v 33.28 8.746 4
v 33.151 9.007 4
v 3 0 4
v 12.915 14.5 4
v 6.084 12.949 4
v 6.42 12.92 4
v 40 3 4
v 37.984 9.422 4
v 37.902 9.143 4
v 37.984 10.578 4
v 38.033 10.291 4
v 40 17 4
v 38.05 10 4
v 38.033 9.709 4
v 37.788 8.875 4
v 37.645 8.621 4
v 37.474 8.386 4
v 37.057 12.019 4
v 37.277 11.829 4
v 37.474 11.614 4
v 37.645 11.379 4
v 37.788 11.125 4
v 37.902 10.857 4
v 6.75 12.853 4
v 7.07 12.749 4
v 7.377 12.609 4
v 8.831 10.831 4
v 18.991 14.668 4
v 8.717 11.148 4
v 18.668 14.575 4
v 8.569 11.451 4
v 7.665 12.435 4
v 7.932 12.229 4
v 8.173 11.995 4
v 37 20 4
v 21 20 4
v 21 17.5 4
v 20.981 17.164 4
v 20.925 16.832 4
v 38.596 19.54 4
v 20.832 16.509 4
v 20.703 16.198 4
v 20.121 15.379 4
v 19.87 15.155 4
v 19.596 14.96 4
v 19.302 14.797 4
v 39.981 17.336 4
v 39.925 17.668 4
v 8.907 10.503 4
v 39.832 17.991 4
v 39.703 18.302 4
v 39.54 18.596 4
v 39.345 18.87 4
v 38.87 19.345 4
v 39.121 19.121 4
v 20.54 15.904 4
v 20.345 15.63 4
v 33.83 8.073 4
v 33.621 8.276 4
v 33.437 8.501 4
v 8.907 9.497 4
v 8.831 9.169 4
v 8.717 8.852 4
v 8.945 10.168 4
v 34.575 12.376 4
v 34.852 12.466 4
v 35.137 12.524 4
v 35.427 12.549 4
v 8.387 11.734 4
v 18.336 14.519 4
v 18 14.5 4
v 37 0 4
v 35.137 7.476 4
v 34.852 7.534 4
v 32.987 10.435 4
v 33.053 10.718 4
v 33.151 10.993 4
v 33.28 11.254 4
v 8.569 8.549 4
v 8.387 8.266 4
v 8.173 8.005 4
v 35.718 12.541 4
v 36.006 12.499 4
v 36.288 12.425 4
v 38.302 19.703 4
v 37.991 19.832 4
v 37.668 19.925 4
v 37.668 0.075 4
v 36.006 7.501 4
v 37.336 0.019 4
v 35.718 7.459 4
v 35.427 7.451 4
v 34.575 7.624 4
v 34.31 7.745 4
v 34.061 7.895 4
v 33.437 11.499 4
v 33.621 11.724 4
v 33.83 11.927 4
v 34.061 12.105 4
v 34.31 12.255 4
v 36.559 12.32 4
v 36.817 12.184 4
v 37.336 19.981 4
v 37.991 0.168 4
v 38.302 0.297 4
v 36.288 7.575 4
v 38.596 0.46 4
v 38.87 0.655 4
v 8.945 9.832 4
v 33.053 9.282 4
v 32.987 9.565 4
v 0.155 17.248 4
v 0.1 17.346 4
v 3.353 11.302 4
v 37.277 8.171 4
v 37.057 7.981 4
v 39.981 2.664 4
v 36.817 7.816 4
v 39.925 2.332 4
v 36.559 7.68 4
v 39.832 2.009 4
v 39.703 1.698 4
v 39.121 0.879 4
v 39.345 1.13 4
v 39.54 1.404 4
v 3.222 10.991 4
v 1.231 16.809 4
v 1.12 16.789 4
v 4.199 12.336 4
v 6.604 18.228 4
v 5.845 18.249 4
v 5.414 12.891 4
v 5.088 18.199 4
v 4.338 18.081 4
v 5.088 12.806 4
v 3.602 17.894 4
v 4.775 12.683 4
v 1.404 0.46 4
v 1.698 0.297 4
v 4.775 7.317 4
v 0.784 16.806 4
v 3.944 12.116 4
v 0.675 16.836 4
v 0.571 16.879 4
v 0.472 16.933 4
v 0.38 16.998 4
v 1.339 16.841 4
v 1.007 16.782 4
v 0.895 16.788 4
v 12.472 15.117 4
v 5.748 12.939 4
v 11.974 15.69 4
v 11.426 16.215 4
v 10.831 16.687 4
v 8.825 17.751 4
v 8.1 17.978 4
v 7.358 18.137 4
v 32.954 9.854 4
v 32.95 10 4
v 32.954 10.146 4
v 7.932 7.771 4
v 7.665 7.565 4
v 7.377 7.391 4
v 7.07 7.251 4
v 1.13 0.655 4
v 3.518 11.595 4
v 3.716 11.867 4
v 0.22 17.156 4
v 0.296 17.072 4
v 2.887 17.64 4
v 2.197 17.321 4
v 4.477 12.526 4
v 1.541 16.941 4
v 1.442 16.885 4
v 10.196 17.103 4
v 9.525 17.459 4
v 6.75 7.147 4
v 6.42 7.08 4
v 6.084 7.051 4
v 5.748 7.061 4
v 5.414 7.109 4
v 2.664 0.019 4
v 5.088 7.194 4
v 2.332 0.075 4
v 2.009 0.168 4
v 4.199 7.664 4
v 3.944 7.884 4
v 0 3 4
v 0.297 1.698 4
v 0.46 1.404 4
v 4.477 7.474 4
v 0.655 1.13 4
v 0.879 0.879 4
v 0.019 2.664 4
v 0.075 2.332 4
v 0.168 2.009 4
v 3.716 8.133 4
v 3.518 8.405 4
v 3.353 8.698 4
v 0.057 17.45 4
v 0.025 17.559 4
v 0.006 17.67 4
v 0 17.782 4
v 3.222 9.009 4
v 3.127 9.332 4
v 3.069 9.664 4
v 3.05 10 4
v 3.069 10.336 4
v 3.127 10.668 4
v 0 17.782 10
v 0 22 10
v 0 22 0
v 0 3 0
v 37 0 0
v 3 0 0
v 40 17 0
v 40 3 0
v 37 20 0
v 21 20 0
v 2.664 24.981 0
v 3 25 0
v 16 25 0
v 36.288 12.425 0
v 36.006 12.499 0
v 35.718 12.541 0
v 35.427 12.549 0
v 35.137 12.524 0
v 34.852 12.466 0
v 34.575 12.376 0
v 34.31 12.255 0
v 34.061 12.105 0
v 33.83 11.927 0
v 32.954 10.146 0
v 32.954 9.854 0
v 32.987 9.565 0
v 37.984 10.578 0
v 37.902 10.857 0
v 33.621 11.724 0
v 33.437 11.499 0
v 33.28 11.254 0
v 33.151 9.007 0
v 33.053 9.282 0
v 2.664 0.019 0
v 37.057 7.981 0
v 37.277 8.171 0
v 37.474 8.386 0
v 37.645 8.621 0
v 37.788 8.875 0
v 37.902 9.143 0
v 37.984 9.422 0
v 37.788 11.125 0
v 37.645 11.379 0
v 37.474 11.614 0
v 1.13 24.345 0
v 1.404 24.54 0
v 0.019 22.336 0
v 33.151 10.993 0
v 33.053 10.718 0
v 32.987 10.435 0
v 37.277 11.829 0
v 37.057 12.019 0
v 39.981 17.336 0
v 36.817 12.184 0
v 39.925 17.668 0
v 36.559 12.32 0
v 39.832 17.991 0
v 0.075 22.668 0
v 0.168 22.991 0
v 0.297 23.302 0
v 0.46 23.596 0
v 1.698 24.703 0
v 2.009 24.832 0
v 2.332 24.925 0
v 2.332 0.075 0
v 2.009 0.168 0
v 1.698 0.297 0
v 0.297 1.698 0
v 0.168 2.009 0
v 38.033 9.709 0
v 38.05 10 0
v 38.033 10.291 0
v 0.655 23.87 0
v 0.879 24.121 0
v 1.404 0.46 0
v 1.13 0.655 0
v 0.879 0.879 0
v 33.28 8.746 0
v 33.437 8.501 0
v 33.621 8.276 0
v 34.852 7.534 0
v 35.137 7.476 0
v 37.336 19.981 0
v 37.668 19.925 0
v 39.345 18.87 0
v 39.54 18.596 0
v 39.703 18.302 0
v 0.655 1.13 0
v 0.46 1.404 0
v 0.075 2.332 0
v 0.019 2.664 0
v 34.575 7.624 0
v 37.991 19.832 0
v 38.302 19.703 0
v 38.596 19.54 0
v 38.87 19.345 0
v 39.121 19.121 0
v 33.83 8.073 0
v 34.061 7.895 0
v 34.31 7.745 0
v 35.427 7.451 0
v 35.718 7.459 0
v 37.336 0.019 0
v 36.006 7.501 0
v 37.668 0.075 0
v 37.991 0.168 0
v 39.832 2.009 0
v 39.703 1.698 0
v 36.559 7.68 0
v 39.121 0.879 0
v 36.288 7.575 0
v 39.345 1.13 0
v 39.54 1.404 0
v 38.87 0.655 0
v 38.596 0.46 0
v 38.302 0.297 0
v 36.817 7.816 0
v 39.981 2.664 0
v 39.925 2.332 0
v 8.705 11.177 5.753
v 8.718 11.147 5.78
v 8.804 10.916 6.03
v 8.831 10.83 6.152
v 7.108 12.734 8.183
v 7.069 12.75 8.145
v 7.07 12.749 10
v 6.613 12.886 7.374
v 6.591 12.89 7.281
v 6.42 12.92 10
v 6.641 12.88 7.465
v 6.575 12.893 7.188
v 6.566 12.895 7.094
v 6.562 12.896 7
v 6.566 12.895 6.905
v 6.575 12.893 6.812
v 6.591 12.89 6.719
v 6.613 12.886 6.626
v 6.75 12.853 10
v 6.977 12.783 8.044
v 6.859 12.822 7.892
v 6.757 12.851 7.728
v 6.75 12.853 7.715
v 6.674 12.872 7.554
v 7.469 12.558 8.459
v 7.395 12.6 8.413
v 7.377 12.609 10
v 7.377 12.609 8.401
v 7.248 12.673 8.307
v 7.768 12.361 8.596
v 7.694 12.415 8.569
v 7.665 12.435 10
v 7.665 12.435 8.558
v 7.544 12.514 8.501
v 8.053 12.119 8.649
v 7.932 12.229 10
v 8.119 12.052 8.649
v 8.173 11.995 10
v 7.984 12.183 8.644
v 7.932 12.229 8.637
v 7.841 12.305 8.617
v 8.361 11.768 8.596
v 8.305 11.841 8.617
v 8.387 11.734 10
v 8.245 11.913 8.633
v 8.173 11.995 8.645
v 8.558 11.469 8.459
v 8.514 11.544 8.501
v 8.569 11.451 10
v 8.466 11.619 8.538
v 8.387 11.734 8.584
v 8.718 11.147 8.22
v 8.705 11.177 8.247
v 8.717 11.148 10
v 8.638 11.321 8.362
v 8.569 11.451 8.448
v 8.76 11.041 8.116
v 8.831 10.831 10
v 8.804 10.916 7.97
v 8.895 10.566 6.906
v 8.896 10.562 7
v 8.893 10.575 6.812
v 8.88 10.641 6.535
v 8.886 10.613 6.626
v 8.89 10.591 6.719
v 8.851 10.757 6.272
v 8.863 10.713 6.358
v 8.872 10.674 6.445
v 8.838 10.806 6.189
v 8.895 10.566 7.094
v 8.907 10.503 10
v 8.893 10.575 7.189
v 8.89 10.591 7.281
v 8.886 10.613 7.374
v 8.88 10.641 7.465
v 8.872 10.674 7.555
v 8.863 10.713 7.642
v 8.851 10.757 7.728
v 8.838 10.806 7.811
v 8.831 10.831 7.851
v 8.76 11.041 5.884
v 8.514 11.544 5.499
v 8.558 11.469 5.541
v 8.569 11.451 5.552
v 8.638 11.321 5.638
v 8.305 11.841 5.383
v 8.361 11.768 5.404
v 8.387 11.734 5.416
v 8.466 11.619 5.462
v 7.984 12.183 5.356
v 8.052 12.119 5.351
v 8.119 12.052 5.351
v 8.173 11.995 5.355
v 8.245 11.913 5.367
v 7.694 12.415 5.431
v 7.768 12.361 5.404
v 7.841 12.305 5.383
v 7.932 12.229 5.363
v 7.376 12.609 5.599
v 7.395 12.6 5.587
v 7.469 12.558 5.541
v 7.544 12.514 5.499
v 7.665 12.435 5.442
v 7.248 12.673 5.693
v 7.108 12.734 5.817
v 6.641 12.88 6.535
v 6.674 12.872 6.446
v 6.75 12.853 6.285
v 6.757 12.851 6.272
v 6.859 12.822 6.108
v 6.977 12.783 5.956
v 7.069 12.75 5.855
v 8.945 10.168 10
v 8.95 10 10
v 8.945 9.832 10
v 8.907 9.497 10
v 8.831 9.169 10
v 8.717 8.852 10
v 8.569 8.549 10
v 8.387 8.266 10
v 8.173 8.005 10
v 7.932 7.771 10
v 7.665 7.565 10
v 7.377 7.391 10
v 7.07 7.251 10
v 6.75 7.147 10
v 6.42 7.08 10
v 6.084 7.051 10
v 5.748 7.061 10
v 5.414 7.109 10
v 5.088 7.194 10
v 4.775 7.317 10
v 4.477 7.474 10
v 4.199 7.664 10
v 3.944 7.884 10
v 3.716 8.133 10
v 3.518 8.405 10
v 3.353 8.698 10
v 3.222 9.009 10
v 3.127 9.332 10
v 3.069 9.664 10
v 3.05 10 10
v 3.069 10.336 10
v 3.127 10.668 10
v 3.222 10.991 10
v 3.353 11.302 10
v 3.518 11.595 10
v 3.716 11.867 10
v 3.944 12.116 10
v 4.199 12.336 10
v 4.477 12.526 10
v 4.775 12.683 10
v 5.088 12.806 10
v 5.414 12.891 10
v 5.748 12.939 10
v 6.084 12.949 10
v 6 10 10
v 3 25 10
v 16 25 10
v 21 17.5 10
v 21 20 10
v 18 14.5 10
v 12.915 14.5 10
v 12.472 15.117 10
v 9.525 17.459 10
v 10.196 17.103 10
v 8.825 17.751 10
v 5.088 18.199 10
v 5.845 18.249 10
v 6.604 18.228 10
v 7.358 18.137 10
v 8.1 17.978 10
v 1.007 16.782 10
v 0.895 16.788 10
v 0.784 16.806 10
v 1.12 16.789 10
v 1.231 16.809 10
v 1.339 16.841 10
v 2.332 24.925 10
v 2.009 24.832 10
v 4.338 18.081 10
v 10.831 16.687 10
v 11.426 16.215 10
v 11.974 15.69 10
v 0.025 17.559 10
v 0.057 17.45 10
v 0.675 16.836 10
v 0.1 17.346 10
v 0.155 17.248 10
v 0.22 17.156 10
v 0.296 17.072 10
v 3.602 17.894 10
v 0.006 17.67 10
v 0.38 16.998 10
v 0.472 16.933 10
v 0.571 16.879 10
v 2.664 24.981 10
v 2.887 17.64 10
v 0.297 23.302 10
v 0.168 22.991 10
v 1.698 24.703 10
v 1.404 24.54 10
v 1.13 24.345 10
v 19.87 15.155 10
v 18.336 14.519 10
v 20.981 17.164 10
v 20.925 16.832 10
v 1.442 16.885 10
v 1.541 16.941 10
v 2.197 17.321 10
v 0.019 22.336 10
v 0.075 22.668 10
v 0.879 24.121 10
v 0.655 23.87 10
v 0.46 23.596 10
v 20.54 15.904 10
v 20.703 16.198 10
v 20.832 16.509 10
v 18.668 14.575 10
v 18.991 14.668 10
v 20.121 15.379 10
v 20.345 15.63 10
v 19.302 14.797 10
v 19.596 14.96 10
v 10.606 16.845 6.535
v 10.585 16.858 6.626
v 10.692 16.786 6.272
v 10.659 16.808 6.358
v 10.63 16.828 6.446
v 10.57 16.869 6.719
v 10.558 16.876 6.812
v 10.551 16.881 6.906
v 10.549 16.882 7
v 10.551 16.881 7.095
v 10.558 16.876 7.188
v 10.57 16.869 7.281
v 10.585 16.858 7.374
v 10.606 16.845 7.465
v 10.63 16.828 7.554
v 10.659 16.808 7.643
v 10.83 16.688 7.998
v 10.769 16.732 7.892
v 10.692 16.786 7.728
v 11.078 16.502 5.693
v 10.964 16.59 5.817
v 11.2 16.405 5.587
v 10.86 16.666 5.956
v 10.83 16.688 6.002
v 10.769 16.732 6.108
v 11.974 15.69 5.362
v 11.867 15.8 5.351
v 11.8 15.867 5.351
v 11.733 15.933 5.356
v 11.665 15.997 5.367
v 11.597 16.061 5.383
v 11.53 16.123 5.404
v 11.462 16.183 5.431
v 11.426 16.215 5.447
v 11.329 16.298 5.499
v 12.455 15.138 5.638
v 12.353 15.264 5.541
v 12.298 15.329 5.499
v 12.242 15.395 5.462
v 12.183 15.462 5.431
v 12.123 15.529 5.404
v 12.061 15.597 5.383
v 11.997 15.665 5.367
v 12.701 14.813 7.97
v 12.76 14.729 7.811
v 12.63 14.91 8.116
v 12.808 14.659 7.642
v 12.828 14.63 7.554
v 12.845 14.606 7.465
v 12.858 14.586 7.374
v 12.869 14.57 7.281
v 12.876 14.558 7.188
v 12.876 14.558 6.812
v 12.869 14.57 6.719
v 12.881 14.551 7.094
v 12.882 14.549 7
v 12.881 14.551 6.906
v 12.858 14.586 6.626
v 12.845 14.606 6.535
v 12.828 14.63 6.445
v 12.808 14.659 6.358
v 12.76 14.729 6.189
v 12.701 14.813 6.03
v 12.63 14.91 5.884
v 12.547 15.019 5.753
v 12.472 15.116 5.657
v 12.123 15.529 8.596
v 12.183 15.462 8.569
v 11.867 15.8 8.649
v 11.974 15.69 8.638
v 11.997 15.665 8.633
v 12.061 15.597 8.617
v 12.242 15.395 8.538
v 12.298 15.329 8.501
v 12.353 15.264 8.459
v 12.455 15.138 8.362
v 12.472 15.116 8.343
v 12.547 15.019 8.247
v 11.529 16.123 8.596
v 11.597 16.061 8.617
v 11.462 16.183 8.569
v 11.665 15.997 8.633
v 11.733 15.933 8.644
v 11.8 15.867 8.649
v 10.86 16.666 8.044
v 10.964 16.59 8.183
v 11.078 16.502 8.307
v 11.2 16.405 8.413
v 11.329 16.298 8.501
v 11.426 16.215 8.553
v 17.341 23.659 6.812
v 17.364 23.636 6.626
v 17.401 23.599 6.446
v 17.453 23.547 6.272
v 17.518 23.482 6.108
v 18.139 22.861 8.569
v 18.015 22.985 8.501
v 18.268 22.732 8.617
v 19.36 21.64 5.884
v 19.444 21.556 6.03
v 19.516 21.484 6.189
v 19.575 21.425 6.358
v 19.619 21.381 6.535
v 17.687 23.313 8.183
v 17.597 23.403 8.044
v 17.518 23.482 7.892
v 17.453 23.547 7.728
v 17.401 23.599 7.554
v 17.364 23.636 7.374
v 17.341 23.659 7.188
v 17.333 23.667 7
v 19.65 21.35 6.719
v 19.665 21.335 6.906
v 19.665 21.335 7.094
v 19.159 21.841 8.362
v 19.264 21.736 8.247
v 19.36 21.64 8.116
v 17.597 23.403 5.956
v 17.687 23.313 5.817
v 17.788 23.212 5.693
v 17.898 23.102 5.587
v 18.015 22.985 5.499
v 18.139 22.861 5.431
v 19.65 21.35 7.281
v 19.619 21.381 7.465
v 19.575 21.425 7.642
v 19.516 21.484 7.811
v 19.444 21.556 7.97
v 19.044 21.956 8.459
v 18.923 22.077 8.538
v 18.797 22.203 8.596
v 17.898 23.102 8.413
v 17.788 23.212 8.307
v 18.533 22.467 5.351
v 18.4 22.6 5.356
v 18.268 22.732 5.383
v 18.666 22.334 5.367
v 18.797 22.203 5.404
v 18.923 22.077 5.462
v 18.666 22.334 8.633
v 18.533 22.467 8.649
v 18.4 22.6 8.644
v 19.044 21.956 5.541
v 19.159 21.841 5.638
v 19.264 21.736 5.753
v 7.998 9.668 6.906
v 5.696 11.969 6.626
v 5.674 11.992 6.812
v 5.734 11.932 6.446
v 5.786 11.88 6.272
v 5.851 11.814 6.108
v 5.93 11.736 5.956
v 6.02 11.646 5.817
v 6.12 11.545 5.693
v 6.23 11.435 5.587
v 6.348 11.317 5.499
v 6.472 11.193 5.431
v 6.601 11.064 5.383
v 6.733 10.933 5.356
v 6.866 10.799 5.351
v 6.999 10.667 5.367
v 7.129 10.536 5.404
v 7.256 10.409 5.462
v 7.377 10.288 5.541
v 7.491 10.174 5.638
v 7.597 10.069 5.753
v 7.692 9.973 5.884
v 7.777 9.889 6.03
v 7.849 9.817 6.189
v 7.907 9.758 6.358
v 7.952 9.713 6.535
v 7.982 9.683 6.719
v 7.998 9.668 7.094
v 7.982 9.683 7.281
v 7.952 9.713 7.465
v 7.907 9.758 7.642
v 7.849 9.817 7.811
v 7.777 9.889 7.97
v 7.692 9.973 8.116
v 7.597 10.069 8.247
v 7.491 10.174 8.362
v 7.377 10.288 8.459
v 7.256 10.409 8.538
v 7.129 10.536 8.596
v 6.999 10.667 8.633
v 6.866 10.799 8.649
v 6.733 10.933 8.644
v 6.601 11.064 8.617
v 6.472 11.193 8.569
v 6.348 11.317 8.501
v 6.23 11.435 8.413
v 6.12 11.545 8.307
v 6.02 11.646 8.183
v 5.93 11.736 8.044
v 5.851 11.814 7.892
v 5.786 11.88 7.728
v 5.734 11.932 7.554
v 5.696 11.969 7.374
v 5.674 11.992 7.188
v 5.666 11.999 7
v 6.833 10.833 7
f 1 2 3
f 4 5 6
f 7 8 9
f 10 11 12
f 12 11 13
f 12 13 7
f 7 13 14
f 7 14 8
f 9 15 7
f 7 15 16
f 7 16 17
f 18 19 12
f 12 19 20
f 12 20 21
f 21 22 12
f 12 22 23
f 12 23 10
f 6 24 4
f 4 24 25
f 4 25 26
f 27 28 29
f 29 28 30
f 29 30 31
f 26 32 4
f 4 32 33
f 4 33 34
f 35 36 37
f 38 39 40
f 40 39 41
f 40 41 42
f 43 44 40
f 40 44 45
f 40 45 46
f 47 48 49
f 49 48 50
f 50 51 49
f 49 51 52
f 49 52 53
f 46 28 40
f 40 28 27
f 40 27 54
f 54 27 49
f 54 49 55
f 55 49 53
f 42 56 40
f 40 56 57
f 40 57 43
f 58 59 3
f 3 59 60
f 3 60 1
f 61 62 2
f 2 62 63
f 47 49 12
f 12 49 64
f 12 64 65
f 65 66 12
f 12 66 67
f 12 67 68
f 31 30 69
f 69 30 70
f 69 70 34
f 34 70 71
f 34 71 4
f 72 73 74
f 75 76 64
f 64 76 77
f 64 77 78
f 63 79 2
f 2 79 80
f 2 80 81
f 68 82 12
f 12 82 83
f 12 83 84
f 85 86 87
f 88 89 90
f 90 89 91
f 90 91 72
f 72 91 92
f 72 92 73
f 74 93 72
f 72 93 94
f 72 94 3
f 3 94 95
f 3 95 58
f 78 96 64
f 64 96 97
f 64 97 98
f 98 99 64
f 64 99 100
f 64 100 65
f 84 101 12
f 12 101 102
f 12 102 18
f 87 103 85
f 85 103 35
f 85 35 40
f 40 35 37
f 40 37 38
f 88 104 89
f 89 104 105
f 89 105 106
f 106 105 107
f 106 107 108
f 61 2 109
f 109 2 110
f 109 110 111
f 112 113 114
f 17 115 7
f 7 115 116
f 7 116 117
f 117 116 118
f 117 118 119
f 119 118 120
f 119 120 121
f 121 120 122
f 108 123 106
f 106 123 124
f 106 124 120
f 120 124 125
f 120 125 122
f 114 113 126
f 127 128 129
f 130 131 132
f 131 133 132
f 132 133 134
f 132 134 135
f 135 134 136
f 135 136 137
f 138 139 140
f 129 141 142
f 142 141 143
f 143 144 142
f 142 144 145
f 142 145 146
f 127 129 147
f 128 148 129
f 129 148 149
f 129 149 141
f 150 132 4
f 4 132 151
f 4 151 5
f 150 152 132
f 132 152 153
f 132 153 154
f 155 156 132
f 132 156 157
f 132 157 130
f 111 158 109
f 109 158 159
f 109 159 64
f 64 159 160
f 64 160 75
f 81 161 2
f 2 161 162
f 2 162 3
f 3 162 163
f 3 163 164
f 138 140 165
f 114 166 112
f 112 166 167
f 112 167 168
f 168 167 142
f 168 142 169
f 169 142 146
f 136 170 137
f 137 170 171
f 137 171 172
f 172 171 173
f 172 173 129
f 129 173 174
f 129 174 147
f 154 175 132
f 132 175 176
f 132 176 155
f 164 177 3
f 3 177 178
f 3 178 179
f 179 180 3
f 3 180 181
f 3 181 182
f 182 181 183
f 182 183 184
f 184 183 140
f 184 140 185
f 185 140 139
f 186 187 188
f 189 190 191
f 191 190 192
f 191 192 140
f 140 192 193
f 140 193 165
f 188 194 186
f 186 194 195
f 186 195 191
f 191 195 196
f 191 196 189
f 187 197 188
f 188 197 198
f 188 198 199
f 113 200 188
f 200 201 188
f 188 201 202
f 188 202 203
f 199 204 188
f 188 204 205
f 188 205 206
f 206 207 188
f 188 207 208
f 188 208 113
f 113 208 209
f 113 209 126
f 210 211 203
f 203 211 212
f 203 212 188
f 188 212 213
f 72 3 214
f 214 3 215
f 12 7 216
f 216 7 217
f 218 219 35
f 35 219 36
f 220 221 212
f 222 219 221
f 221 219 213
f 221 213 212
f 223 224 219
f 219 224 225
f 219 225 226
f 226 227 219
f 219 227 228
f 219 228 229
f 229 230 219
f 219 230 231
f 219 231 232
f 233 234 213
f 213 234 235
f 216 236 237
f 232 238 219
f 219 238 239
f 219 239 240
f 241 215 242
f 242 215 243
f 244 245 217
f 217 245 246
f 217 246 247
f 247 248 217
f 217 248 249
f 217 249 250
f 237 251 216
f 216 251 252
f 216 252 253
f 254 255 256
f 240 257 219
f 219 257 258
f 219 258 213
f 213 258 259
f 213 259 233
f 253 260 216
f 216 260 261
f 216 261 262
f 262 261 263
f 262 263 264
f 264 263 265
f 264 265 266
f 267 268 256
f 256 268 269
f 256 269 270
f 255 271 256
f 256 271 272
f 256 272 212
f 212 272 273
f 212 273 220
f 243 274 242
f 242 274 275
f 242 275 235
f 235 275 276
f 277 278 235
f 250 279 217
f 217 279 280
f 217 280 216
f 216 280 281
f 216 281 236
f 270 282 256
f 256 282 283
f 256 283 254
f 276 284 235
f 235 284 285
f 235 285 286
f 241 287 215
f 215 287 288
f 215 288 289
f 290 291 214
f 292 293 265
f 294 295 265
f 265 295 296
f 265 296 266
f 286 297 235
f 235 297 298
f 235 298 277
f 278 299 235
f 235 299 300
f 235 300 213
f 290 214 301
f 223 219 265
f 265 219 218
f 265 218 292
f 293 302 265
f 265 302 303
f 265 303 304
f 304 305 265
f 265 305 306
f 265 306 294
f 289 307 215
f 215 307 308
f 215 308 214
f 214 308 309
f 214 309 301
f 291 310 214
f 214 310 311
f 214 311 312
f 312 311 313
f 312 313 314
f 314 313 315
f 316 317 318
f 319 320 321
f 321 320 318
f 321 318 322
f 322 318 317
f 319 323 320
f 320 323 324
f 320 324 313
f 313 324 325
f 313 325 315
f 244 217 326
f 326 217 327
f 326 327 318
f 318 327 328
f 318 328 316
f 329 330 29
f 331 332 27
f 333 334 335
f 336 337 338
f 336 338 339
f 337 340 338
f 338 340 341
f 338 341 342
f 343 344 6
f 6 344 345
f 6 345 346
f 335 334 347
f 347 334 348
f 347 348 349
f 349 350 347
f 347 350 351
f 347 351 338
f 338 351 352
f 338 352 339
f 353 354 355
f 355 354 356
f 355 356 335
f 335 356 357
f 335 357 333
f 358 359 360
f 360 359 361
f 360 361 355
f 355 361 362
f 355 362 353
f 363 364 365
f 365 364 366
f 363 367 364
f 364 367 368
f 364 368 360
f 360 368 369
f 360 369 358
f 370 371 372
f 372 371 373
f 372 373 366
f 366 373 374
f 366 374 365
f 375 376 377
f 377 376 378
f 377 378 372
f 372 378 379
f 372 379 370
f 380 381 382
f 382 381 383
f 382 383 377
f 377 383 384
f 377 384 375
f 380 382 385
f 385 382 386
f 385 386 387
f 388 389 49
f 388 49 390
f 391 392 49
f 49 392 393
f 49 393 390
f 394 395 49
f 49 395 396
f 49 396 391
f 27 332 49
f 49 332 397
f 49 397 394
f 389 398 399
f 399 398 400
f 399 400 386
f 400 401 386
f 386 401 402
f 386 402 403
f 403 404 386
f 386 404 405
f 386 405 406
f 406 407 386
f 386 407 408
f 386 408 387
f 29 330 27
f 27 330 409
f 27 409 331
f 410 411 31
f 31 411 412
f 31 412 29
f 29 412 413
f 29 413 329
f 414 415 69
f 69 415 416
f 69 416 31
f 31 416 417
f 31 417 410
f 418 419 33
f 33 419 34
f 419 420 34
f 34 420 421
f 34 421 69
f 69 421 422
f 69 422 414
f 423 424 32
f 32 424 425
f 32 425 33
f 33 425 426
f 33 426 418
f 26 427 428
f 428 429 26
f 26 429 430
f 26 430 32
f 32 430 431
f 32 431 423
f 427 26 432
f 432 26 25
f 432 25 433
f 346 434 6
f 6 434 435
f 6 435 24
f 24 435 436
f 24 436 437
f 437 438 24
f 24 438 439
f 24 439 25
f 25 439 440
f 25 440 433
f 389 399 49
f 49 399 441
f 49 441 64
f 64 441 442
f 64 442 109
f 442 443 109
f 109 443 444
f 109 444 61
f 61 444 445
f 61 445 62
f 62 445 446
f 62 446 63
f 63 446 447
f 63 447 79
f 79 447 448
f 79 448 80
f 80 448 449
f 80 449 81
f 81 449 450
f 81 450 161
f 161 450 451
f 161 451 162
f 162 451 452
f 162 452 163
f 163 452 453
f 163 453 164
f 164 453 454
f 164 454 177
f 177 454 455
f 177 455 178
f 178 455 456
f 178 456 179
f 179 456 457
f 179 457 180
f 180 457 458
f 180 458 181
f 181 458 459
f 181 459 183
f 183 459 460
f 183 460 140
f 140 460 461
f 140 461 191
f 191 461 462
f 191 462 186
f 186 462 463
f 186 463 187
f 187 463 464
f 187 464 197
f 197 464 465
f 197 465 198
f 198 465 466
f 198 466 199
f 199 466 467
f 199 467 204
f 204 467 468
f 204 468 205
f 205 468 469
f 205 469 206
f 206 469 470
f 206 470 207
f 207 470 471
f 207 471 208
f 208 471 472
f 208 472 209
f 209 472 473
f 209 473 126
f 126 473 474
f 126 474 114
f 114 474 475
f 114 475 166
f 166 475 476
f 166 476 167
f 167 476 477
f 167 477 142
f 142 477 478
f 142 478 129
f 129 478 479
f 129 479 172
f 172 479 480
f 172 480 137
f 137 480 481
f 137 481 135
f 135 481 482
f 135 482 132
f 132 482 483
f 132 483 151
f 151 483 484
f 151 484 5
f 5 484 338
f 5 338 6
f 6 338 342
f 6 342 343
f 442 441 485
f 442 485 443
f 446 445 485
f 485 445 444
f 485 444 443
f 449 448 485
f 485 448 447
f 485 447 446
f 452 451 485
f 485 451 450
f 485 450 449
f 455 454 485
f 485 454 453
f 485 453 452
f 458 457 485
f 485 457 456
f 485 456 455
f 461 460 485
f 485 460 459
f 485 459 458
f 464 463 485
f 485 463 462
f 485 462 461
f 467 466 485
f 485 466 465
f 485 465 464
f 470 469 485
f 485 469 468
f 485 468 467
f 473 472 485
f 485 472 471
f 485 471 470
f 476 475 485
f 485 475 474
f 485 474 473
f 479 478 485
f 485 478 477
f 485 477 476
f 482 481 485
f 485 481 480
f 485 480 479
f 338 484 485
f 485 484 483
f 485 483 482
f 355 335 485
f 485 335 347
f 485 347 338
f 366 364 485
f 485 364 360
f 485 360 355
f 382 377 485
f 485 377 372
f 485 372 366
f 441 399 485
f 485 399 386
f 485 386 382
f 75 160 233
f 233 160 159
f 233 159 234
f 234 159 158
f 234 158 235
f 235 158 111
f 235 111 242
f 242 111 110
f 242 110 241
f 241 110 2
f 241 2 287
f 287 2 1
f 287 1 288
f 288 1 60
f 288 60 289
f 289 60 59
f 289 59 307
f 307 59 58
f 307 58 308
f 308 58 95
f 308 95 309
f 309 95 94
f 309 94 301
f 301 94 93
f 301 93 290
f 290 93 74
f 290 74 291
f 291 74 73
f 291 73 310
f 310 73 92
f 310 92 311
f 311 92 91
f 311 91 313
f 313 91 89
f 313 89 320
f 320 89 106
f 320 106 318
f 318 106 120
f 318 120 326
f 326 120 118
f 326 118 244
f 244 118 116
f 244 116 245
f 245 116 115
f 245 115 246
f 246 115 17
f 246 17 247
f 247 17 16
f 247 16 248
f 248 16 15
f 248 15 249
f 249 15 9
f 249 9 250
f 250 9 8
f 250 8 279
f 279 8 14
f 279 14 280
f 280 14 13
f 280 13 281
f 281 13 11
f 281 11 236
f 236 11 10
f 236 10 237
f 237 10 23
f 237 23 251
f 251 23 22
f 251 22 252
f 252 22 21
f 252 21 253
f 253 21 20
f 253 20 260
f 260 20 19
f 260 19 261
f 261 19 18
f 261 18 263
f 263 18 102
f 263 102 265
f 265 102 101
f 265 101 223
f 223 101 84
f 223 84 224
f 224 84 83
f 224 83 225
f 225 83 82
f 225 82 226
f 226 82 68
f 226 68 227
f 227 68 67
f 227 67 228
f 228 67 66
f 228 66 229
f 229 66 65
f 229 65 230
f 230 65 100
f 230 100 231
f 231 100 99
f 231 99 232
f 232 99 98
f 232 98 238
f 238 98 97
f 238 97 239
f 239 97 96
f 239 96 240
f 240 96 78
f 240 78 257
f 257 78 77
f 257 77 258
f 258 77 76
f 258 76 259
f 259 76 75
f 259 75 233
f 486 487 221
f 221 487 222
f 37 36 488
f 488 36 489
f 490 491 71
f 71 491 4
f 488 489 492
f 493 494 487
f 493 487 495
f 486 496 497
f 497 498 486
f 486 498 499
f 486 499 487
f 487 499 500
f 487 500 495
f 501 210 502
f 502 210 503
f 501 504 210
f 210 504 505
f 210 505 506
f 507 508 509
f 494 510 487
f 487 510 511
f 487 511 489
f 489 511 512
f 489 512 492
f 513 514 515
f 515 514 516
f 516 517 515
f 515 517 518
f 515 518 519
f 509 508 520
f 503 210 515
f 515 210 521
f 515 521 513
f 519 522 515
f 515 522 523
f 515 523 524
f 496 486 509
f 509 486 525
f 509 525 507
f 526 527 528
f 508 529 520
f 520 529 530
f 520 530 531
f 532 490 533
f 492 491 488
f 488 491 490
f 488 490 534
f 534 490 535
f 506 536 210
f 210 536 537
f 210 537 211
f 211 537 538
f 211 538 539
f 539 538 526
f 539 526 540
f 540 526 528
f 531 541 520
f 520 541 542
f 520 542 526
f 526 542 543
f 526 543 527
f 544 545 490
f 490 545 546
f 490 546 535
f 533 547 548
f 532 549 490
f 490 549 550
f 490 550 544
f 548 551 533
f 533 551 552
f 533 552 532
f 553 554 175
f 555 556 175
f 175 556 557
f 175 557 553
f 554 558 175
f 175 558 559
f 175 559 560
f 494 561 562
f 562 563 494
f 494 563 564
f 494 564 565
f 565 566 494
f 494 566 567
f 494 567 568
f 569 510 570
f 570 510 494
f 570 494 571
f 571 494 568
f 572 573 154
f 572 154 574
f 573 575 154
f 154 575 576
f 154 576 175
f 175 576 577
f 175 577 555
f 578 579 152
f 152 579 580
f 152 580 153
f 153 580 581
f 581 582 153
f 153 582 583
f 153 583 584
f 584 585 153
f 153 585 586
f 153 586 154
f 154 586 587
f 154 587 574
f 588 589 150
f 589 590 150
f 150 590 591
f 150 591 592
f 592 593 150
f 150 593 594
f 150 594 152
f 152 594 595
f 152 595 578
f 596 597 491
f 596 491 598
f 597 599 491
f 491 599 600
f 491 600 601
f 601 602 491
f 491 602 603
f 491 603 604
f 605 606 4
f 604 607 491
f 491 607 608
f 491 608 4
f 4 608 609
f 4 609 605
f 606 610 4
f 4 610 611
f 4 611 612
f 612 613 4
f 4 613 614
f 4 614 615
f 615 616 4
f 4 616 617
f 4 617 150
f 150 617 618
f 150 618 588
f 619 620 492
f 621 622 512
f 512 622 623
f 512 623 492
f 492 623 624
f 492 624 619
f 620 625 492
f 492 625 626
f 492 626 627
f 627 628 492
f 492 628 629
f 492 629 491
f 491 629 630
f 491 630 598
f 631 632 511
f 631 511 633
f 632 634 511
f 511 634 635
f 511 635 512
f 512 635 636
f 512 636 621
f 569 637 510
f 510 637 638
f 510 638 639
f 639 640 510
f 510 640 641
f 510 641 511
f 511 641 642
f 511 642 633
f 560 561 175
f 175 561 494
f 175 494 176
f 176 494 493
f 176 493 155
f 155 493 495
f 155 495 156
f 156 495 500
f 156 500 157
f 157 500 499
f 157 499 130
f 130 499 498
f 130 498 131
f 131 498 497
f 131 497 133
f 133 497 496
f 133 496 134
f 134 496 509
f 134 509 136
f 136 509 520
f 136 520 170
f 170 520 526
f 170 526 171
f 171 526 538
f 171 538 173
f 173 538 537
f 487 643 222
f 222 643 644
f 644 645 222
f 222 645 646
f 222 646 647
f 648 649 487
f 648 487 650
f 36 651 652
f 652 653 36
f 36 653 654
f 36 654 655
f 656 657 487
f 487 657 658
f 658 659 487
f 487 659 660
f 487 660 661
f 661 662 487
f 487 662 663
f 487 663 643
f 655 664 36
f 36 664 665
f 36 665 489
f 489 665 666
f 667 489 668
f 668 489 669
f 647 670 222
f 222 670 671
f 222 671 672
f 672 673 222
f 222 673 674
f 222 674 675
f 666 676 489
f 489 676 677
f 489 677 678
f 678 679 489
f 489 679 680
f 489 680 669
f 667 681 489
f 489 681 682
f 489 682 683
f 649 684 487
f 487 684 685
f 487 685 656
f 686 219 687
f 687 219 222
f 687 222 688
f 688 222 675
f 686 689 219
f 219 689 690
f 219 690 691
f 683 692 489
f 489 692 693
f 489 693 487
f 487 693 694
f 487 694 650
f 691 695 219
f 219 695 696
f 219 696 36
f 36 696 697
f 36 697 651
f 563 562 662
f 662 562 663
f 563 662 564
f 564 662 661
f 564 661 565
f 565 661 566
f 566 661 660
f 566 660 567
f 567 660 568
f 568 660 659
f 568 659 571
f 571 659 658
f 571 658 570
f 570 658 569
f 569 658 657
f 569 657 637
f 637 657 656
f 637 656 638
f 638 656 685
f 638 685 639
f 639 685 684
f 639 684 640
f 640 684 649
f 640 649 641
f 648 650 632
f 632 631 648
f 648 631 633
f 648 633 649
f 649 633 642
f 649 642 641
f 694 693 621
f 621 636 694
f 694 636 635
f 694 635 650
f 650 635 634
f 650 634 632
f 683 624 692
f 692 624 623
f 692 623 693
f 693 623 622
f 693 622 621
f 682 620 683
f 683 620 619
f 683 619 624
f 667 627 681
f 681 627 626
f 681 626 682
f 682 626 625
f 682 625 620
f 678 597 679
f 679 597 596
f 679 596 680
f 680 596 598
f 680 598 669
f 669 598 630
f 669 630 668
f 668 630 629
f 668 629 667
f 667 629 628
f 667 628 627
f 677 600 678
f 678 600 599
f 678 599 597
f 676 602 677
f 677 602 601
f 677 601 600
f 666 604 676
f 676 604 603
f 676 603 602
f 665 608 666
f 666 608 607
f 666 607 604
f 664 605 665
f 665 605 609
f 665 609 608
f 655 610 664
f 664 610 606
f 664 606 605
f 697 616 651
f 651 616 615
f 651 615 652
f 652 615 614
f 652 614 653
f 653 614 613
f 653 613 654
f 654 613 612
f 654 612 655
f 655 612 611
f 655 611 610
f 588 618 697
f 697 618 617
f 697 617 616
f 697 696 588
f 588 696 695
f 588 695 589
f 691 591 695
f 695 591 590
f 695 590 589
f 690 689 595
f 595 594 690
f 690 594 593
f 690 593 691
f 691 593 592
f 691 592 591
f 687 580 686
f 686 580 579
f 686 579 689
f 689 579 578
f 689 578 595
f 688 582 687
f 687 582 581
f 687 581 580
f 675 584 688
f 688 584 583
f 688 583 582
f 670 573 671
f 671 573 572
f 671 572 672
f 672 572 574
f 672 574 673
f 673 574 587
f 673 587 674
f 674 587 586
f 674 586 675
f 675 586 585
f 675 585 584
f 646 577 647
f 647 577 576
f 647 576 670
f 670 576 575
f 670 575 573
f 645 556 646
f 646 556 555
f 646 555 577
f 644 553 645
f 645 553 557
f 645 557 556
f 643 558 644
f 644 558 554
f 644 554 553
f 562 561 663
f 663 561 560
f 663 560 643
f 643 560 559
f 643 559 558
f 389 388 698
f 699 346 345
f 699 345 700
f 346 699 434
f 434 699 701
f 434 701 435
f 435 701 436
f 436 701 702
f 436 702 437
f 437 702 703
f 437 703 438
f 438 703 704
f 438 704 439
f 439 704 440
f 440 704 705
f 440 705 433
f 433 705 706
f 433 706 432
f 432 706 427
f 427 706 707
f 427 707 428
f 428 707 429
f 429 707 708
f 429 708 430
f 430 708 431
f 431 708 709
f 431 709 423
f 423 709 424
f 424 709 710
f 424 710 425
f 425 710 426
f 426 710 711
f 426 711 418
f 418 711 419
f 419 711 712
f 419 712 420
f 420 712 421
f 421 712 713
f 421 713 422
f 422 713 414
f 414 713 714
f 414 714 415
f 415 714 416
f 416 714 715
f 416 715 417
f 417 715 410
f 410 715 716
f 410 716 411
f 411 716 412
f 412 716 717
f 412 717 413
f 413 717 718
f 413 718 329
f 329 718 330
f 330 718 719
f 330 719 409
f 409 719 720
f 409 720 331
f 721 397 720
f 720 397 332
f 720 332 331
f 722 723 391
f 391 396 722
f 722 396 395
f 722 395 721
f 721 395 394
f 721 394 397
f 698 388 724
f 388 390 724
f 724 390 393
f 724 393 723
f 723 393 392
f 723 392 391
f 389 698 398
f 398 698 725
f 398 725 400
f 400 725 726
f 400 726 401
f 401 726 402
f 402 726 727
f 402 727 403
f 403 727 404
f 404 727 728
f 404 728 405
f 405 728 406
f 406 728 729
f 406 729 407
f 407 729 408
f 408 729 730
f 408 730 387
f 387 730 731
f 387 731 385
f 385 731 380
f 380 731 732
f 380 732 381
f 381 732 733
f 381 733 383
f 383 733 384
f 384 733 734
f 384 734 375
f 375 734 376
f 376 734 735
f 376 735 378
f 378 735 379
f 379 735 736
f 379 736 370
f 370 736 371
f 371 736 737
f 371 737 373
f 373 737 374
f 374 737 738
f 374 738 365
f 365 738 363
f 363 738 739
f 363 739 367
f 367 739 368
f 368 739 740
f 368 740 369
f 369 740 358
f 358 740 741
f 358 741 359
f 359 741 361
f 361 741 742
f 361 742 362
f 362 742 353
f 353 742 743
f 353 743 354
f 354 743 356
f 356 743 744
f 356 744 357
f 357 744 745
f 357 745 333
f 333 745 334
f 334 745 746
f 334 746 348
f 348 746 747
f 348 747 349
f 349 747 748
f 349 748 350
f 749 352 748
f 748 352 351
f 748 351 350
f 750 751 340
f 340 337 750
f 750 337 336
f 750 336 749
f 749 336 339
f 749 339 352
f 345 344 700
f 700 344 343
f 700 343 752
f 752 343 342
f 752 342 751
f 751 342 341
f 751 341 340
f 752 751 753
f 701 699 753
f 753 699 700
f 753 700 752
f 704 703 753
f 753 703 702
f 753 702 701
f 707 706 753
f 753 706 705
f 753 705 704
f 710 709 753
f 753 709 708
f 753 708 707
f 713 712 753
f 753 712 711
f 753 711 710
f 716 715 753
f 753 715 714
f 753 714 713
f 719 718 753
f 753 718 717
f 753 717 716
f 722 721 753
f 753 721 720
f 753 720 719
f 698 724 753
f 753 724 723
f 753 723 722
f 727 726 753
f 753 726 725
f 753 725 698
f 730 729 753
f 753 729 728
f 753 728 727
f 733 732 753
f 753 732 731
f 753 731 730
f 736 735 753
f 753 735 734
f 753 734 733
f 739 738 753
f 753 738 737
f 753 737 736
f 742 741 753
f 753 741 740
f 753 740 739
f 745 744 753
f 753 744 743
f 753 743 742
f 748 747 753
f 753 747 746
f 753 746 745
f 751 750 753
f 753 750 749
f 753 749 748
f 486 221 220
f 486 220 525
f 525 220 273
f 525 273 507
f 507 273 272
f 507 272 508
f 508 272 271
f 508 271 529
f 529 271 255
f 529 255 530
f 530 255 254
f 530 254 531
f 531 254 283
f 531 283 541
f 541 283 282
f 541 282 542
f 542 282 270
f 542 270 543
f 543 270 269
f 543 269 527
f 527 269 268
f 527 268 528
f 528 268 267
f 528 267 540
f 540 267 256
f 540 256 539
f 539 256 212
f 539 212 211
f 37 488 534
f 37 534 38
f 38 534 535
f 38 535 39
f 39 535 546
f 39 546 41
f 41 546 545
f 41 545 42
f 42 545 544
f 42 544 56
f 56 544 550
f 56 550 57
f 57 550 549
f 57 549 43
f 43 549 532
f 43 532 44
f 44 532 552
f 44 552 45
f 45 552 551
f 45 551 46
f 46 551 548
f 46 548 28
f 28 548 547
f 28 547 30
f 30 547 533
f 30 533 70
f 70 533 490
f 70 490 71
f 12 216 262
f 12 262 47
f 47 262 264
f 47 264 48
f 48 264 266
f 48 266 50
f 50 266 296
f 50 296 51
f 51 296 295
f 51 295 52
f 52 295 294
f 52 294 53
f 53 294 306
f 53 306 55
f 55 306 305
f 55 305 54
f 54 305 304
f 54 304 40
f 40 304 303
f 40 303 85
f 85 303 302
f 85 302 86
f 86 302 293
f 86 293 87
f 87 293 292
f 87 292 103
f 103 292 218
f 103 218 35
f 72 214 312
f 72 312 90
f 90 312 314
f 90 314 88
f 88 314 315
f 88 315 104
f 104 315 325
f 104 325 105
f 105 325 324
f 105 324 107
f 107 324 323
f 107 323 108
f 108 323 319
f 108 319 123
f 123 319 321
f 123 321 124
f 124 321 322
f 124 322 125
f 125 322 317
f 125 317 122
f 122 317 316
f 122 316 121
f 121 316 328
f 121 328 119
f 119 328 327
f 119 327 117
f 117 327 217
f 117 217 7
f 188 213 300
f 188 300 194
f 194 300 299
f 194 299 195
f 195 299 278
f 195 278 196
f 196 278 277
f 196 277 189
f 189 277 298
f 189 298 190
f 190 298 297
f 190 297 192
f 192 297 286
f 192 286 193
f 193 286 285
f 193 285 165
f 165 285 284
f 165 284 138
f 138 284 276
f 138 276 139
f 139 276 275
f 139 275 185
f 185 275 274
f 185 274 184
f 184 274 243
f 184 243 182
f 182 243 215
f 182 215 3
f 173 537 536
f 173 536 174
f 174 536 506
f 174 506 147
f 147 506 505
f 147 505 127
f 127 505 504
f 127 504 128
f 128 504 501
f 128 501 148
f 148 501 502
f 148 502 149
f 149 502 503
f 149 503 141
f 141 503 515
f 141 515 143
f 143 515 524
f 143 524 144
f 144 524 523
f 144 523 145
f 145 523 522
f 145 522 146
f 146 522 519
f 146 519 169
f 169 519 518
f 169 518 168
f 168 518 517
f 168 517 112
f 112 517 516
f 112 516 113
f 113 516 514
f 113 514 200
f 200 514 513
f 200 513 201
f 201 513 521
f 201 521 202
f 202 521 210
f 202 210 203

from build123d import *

# Parameters (mm, degrees)
ESQUISSE1_W                  = 40
ESQUISSE1_H                  = 20
BOSS_EXTRU_1_DEPTH           = 4
ESQUISSE2_R                  = 2.95
BOSS_EXTRU_2_DEPTH           = 6
ENL_V_MAT_EXTRU_1_DEPTH      = 46.122056691
ENL_V_MAT_EXTRU_1_DEPTH_BACK = 46.122056691
ESQUISSE3_R                  = 2.55
ESQUISSE4_W                  = 21
ESQUISSE4_H                  = 5
BOSS_EXTRU_4_DEPTH           = 4
ESQUISSE5_W                  = 21
ESQUISSE5_H                  = 10.5
BOSS_EXTRU_5_DEPTH           = 6
ENL_V_START                  = -6
ESQUISSE6_R                  = 8.25
ESQUISSE6_R_2                = 2.95
ENL_V_MAT_EXTRU_2_DEPTH      = 6
CHANFREIN1_SIZE              = 5
ESQUISSE7_R                  = 1.65
ENL_V_MAT_EXTRU_3_DEPTH      = 16.5
CONG_1_R                     = 3
CONG_2_R                     = 1


with BuildPart() as part:
    # Esquisse1 → Boss.-Extru.1 (new body)
    with BuildSketch(Plane.XY):
        with Locations((20, 10)):
            Rectangle(ESQUISSE1_W, ESQUISSE1_H)
    extrude(amount=BOSS_EXTRU_1_DEPTH)

    # Esquisse2 → Boss.-Extru.2 (add)
    with BuildSketch(Plane.XY.offset(4)):
        with Locations(Location((6, 10, 0), (0, 0, 180))):
            Circle(ESQUISSE2_R)
    extrude(amount=BOSS_EXTRU_2_DEPTH)

    # Esquisse3 → Enlèv. mat.-Extru.1 (cut, two sides: drawn at the far end of the back side and taken through both)
    with BuildSketch(Plane.XY.offset(4).offset(-ENL_V_MAT_EXTRU_1_DEPTH_BACK)):
        with Locations((35.5, 10)):
            Circle(ESQUISSE3_R)
    extrude(amount=ENL_V_MAT_EXTRU_1_DEPTH + ENL_V_MAT_EXTRU_1_DEPTH_BACK, mode=Mode.SUBTRACT)

    # Esquisse4 → Boss.-Extru.4 (add)
    with BuildSketch(Plane.XY.offset(4)):
        with Locations((10.5, 22.5)):
            Rectangle(ESQUISSE4_W, ESQUISSE4_H)
    extrude(amount=-BOSS_EXTRU_4_DEPTH)

    # Esquisse5 → Boss.-Extru.5 (add)
    with BuildSketch(Plane.XY.offset(4)):
        with Locations((10.5, 19.75)):
            Rectangle(ESQUISSE5_W, ESQUISSE5_H)
    extrude(amount=BOSS_EXTRU_5_DEPTH)

    # Esquisse6 → Enlèv. mat.-Extru.2 (cut)
    with BuildSketch(Plane.XY.offset(10).offset(ENL_V_START)):
        with Locations((6, 10)):
            Circle(ESQUISSE6_R)
        with Locations(Location((6, 10, 0), (0, 0, 180))):
            Circle(ESQUISSE6_R_2, mode=Mode.SUBTRACT)
    extrude(amount=ENL_V_MAT_EXTRU_2_DEPTH, mode=Mode.SUBTRACT)

    # Chanfrein1
    chanfrein1_edges = [part.edges().sort_by_distance(p)[0] for p in [
        (21, 25, 5),
    ]]
    chamfer(chanfrein1_edges, length=CHANFREIN1_SIZE)

    # Esquisse7 → Enlèv. mat.-Extru.3 (cut)
    with BuildSketch(Plane(origin=(20.5, 20.5, 0), x_dir=(0, 0, -1), z_dir=(0.7071067811865471, 0.707106781186548, 0))):
        with Locations(Location((-7, 2.828427125, 0), (0, 0, 90))):
            Circle(ESQUISSE7_R)
    extrude(amount=-ENL_V_MAT_EXTRU_3_DEPTH, mode=Mode.SUBTRACT)

    # Congé1
    cong_1_edges = [part.edges().sort_by_distance(p)[0] for p in [
        (0, 25, 5),
        (21, 14.5, 7),
        (40, 20, 2),
        (40, 0, 2),
        (0, 0, 2),
    ]]
    fillet(cong_1_edges, radius=CONG_1_R)

    # Congé2
    cong_2_edges = [part.edges().sort_by_distance(p)[0] for p in [
        (0, 15.662375826, 7),
    ]]
    fillet(cong_2_edges, radius=CONG_2_R)


solid = part.part
